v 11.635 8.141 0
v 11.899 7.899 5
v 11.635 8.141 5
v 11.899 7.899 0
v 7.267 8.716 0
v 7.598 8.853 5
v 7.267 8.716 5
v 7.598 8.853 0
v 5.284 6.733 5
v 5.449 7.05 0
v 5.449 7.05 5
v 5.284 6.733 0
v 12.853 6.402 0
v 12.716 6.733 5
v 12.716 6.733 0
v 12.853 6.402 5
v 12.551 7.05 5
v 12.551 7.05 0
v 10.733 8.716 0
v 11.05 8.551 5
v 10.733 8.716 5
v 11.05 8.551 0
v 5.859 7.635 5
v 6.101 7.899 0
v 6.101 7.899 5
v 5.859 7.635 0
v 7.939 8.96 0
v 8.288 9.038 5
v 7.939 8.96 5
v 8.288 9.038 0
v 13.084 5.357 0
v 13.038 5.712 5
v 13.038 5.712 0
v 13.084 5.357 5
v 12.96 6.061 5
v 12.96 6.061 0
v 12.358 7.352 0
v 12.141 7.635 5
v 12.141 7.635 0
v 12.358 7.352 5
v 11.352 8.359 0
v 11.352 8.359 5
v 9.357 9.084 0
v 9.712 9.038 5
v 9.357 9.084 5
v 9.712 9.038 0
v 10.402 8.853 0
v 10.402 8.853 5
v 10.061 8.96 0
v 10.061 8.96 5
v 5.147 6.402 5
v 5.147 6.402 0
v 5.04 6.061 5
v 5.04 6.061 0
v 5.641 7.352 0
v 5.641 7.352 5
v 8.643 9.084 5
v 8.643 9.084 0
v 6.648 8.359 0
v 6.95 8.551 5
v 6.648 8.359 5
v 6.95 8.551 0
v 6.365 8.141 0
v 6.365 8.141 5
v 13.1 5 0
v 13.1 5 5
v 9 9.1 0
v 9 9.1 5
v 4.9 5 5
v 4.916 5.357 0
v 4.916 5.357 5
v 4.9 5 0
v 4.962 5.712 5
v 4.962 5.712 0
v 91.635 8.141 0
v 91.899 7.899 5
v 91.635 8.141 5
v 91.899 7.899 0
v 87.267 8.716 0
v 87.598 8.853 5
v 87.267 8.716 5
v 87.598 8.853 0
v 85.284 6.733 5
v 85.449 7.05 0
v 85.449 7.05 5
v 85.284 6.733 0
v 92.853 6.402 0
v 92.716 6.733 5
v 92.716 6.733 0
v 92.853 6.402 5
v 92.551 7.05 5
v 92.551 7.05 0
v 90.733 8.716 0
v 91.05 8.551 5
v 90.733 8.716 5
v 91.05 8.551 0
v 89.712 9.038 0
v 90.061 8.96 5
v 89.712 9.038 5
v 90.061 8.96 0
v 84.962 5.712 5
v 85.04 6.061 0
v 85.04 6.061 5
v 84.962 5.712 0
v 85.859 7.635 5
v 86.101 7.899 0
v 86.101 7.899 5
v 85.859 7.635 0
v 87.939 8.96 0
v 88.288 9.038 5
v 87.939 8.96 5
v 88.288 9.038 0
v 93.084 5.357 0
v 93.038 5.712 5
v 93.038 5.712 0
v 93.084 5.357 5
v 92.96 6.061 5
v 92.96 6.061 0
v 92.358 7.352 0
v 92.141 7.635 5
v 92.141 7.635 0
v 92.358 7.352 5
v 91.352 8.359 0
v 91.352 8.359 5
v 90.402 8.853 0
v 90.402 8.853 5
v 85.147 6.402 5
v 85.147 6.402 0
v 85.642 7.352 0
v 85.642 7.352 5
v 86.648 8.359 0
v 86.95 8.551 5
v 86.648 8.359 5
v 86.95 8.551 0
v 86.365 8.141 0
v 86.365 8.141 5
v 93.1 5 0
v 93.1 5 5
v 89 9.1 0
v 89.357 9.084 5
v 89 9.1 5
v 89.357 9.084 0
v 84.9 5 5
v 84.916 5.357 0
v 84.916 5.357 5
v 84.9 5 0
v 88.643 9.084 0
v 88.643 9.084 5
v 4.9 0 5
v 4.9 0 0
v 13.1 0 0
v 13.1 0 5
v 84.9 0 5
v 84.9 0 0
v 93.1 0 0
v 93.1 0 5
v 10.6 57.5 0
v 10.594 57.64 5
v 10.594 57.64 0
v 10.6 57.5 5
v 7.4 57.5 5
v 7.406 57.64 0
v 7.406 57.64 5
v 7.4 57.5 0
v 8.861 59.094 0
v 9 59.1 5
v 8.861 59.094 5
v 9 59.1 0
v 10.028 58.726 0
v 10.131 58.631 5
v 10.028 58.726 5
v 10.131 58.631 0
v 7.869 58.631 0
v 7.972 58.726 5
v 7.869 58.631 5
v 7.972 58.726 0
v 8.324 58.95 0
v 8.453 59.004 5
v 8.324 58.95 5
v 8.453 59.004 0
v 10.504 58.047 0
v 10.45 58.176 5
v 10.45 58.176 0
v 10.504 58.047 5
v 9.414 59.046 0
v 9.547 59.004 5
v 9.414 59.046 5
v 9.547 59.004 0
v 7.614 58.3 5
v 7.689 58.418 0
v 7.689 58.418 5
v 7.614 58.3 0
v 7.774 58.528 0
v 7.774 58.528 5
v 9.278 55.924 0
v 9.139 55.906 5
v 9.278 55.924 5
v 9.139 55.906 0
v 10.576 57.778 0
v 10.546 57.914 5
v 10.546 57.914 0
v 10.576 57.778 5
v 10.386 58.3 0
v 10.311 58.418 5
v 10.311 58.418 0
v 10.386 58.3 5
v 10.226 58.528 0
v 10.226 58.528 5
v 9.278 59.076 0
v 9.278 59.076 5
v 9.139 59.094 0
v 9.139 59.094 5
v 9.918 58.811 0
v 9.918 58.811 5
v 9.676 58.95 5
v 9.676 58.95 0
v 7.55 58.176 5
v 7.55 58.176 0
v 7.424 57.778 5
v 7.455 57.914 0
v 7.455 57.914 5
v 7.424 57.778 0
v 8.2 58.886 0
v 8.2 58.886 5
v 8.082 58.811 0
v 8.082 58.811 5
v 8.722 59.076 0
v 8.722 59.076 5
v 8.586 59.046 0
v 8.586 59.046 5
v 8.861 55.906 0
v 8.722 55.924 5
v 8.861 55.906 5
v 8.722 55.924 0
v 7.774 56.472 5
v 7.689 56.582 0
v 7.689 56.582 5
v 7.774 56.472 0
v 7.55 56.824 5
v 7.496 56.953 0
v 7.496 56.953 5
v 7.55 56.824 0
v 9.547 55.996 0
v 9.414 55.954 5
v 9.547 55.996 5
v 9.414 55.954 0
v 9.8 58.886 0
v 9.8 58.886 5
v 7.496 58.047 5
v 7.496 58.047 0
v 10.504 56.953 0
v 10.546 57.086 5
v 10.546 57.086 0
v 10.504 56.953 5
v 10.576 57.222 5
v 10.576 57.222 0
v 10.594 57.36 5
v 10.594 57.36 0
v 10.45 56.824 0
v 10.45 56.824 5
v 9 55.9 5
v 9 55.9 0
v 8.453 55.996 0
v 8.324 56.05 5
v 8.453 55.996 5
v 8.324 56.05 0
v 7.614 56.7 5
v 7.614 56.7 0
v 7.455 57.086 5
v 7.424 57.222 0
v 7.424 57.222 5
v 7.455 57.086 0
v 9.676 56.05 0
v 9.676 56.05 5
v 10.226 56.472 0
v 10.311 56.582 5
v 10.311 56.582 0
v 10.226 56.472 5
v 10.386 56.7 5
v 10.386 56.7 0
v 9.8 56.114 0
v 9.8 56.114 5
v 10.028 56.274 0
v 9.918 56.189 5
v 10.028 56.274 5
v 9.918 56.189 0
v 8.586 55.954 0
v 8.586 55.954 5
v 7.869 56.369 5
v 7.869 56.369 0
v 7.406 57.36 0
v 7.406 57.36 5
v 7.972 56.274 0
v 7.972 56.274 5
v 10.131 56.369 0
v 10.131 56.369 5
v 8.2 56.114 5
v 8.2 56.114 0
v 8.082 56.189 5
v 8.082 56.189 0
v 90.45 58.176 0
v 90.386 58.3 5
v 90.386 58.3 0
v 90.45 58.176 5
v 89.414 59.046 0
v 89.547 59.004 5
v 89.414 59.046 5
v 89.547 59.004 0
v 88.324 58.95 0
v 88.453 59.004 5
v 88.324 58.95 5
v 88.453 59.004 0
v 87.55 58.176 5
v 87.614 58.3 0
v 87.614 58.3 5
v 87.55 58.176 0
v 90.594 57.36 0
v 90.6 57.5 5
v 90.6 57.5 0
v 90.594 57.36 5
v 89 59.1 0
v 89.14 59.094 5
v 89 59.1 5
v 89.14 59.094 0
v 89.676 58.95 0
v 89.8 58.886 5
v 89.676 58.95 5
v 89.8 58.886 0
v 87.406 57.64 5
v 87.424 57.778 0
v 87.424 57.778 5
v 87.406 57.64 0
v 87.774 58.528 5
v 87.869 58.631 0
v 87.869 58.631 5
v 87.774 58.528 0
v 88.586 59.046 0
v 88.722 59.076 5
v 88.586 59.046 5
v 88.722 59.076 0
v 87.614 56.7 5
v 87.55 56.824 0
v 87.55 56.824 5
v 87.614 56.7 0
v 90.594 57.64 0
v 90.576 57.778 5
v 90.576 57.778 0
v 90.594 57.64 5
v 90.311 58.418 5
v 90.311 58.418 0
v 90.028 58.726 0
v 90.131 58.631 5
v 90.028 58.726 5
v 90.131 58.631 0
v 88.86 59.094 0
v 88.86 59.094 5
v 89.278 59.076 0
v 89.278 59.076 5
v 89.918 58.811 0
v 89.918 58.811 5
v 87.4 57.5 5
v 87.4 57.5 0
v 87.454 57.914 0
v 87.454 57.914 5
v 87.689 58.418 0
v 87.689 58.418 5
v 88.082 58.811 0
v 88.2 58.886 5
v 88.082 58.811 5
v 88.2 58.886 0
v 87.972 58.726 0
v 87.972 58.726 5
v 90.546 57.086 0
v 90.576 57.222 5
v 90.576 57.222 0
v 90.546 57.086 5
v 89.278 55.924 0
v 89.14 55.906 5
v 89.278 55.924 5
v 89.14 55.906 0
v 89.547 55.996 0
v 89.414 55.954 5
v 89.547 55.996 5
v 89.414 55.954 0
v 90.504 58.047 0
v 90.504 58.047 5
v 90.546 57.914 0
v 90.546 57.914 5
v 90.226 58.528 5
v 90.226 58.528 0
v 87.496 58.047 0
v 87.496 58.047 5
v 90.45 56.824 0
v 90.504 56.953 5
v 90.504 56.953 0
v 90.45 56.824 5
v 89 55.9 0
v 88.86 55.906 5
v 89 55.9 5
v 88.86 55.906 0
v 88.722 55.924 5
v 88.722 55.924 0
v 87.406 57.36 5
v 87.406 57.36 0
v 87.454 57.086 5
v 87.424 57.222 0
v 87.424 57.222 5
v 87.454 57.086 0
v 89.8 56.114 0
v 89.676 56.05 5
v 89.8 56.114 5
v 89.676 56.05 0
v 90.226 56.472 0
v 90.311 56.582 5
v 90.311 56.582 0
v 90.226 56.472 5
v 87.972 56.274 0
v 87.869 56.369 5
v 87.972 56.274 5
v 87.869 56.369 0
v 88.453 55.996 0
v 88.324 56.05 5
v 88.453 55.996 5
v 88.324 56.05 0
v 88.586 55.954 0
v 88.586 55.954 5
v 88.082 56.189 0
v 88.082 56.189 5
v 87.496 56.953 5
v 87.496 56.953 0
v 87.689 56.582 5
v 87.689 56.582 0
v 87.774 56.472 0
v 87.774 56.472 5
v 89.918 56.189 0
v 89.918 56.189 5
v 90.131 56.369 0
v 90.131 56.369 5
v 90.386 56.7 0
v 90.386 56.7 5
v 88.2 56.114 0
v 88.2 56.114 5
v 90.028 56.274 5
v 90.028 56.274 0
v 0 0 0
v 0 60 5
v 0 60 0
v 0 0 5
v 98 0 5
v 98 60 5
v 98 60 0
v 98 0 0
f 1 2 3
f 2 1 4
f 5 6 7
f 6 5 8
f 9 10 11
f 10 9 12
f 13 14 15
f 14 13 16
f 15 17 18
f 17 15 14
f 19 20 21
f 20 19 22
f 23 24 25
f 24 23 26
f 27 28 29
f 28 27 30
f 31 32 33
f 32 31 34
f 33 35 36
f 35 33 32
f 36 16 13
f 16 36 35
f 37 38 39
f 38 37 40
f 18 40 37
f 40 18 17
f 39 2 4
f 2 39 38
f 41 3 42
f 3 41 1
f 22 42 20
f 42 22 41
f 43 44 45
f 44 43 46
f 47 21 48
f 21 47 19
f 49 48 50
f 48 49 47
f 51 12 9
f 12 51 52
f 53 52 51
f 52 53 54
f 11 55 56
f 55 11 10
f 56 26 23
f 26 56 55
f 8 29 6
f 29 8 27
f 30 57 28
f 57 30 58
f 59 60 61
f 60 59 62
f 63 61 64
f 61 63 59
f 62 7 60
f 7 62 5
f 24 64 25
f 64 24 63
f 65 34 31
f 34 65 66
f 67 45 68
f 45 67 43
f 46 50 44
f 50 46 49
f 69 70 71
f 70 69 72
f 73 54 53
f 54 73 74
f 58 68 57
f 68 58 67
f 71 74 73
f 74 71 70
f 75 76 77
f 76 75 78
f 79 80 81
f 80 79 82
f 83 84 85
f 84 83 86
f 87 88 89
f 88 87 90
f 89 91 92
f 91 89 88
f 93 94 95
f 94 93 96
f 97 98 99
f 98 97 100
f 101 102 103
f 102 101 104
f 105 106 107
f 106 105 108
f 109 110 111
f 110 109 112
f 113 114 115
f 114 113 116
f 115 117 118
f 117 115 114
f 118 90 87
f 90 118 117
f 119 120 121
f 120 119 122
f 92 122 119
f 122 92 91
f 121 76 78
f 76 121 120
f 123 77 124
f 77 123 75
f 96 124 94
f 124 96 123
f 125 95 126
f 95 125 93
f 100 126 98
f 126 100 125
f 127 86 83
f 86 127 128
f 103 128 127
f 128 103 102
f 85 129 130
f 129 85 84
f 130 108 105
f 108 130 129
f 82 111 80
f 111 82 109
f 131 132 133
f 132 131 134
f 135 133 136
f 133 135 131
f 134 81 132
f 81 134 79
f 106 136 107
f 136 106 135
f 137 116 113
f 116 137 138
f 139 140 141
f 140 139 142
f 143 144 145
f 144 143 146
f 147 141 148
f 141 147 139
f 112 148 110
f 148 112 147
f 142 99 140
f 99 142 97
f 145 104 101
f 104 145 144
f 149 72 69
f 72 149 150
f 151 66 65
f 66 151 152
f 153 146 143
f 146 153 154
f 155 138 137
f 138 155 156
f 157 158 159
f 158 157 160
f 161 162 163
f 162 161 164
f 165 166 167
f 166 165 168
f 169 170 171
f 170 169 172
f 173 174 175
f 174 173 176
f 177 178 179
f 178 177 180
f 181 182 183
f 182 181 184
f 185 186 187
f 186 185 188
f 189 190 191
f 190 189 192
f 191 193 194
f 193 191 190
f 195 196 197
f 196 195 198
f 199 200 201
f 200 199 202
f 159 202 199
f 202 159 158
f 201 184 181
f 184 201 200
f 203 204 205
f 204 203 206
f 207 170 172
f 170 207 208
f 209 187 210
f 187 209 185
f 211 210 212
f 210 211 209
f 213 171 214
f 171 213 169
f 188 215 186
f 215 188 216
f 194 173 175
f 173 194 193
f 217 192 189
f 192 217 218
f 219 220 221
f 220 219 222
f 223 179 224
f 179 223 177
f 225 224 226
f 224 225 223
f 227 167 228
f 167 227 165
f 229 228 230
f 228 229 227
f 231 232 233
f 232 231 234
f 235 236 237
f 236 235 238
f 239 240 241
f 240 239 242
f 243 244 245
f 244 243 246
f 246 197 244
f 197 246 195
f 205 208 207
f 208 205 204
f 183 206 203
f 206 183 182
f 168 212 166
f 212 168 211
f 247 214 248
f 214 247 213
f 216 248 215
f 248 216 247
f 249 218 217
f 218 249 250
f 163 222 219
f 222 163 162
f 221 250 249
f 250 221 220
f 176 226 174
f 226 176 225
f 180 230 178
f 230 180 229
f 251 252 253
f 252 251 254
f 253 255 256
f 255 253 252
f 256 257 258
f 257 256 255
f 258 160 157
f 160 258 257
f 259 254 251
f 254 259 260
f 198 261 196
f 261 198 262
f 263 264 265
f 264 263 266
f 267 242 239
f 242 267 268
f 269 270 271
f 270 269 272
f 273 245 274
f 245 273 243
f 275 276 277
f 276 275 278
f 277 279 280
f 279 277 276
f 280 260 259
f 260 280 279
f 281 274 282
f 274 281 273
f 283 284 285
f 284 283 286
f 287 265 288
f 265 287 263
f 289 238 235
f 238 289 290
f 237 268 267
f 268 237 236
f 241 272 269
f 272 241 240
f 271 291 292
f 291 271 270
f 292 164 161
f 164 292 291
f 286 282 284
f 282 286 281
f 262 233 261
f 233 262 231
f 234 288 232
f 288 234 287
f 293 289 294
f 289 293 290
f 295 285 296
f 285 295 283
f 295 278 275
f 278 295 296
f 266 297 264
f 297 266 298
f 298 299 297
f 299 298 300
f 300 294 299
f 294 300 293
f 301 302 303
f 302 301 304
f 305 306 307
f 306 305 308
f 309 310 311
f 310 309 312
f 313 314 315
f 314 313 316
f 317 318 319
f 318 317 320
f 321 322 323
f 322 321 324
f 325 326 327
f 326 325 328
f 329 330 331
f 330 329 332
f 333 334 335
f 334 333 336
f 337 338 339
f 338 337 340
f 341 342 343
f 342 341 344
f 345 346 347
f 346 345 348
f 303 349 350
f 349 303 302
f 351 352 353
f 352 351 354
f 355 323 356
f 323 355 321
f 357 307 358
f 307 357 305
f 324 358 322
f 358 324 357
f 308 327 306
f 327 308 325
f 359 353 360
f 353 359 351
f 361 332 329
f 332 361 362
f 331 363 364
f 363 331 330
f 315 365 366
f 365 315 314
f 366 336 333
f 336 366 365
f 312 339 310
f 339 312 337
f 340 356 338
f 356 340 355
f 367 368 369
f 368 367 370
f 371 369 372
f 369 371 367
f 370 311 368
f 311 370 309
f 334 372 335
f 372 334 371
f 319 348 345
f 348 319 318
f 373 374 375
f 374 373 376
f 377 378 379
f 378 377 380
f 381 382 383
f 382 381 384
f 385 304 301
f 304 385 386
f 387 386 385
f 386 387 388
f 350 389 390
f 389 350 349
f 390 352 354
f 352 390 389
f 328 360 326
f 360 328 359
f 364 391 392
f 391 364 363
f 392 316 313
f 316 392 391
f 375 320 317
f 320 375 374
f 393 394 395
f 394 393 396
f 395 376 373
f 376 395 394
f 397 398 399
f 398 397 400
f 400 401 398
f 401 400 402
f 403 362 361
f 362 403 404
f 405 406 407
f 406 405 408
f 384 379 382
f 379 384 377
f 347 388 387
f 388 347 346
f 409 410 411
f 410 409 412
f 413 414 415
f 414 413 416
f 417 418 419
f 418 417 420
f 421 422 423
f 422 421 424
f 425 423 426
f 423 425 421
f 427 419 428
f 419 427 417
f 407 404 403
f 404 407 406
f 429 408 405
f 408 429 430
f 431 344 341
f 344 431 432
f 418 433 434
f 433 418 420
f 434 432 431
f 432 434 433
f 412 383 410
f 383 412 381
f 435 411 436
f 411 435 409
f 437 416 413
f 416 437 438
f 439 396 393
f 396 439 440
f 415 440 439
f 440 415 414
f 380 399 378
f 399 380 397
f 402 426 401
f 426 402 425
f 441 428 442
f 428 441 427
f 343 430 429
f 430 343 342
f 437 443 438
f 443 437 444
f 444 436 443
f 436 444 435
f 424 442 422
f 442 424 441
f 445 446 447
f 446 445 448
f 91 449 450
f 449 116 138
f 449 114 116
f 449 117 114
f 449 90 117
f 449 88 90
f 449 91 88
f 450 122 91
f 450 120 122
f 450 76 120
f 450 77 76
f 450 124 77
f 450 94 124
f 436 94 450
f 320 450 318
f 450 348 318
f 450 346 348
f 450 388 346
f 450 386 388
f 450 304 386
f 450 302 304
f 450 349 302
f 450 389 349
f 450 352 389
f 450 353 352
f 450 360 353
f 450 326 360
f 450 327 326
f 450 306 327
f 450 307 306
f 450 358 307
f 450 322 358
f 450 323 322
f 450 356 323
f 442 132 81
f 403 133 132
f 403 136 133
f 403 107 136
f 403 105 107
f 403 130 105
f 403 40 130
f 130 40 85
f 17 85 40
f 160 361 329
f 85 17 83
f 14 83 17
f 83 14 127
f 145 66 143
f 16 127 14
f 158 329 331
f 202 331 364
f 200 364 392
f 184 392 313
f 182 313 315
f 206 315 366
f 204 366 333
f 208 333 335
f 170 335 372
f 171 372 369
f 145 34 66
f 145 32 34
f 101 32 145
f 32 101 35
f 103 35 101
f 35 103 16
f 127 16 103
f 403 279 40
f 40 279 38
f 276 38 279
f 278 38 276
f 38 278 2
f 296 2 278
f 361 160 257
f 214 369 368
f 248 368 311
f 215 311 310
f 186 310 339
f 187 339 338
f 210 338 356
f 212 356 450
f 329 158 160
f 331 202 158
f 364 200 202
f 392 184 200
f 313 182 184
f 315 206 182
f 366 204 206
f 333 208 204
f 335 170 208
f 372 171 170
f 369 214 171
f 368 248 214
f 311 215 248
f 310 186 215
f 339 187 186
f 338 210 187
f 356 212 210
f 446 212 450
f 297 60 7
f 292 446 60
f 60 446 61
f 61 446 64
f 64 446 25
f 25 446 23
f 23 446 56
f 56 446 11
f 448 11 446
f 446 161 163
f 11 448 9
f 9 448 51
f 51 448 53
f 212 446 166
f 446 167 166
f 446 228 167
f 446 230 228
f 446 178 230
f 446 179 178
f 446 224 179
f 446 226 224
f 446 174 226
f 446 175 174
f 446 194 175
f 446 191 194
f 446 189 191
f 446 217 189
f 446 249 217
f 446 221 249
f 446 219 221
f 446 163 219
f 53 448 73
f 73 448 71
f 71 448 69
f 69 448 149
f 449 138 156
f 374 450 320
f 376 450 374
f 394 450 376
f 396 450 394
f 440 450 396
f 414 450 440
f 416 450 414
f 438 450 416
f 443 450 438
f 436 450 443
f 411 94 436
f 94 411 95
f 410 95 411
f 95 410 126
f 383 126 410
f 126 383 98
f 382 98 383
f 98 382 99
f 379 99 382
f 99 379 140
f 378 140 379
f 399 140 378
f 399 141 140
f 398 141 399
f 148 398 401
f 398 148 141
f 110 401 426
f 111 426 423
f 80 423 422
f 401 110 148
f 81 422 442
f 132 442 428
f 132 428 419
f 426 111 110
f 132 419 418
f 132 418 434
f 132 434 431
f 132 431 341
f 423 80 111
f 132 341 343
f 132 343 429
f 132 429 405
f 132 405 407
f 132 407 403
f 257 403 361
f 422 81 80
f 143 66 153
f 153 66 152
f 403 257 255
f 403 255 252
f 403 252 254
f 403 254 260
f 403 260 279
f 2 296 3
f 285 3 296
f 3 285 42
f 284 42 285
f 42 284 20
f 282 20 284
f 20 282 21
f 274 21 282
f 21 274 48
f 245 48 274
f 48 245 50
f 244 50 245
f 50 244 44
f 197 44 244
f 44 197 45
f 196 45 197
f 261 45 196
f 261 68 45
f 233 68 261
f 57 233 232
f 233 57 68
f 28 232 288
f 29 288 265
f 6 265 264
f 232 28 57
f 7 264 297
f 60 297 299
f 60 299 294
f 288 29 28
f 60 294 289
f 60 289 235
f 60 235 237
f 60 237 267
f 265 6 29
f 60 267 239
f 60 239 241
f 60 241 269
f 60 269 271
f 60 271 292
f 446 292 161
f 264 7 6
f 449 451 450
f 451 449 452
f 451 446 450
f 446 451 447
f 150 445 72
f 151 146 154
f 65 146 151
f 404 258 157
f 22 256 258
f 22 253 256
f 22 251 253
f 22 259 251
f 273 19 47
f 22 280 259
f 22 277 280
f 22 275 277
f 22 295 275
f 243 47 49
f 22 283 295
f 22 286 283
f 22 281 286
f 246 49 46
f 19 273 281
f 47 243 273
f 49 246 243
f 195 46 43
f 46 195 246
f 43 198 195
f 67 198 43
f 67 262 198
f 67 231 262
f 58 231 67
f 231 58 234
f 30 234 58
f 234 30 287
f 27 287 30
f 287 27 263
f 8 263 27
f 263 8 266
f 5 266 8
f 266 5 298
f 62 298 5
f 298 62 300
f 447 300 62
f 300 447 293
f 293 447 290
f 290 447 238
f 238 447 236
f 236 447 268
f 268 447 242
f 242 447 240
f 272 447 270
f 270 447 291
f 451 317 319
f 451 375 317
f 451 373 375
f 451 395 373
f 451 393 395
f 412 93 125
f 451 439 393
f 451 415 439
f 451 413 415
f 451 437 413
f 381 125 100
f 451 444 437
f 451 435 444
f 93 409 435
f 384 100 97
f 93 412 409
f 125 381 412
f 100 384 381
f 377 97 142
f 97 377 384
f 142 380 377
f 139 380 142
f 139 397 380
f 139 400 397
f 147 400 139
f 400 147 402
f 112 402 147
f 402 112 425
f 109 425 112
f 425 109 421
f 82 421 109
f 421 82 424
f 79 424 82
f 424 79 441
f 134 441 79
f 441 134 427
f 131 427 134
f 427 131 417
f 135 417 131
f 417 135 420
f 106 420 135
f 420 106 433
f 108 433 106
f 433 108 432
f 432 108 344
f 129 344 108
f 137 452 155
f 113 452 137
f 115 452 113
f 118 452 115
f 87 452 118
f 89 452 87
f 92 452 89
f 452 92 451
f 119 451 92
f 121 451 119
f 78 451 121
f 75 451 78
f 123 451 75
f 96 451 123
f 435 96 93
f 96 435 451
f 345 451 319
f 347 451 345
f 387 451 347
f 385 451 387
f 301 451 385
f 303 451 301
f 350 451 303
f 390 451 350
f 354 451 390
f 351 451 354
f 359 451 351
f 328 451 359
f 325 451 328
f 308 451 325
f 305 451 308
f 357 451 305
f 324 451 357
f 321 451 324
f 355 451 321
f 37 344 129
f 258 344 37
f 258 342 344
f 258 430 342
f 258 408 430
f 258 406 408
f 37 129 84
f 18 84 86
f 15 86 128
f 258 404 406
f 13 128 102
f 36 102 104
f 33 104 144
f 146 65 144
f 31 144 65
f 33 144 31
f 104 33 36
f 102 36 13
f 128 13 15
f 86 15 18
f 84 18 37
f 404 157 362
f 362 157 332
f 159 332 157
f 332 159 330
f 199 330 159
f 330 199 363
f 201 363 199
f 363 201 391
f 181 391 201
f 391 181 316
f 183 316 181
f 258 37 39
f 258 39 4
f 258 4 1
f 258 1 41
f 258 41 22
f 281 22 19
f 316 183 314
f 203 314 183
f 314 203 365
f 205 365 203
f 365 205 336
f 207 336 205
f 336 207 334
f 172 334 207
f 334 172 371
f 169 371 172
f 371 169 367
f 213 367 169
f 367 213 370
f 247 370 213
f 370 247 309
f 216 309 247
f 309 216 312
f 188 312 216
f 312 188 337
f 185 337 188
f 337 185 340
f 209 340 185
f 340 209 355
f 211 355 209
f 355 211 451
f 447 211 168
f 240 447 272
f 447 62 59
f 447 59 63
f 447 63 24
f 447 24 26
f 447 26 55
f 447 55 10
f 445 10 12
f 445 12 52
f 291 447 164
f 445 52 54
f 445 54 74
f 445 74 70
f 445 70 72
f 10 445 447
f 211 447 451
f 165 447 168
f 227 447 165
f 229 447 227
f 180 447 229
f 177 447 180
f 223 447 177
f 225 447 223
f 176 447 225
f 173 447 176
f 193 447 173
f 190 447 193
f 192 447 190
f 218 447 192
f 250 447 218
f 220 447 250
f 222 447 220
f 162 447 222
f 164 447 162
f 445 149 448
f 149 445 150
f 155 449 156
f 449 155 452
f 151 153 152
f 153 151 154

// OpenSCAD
difference(){
cube([98,60,5]);

{
    translate([9,5,2.5]){
        cylinder(h=5.01, r=4.1, $fa=5, $fs=0.1, center=true);
        translate([80,0,0])
            cylinder(h=5.01, r=4.1, $fa=5, $fs=0.1, center=true);}
    
    translate([4.9,-0.01,-0.01]){
        cube([8.2,5.01,5.02]);
        translate([80,0,0])
            cube([8.2,5.01,5.02]);}
            
    translate([9,57.5,2.5]){
        cylinder(h=5.01, r=1.6, $fa=5, $fs=0.1, center=true);
        translate([80,0,0])
            cylinder(h=5.01, r=1.6, $fa=5, $fs=0.1, center=true);}
            
        

    
}

}
